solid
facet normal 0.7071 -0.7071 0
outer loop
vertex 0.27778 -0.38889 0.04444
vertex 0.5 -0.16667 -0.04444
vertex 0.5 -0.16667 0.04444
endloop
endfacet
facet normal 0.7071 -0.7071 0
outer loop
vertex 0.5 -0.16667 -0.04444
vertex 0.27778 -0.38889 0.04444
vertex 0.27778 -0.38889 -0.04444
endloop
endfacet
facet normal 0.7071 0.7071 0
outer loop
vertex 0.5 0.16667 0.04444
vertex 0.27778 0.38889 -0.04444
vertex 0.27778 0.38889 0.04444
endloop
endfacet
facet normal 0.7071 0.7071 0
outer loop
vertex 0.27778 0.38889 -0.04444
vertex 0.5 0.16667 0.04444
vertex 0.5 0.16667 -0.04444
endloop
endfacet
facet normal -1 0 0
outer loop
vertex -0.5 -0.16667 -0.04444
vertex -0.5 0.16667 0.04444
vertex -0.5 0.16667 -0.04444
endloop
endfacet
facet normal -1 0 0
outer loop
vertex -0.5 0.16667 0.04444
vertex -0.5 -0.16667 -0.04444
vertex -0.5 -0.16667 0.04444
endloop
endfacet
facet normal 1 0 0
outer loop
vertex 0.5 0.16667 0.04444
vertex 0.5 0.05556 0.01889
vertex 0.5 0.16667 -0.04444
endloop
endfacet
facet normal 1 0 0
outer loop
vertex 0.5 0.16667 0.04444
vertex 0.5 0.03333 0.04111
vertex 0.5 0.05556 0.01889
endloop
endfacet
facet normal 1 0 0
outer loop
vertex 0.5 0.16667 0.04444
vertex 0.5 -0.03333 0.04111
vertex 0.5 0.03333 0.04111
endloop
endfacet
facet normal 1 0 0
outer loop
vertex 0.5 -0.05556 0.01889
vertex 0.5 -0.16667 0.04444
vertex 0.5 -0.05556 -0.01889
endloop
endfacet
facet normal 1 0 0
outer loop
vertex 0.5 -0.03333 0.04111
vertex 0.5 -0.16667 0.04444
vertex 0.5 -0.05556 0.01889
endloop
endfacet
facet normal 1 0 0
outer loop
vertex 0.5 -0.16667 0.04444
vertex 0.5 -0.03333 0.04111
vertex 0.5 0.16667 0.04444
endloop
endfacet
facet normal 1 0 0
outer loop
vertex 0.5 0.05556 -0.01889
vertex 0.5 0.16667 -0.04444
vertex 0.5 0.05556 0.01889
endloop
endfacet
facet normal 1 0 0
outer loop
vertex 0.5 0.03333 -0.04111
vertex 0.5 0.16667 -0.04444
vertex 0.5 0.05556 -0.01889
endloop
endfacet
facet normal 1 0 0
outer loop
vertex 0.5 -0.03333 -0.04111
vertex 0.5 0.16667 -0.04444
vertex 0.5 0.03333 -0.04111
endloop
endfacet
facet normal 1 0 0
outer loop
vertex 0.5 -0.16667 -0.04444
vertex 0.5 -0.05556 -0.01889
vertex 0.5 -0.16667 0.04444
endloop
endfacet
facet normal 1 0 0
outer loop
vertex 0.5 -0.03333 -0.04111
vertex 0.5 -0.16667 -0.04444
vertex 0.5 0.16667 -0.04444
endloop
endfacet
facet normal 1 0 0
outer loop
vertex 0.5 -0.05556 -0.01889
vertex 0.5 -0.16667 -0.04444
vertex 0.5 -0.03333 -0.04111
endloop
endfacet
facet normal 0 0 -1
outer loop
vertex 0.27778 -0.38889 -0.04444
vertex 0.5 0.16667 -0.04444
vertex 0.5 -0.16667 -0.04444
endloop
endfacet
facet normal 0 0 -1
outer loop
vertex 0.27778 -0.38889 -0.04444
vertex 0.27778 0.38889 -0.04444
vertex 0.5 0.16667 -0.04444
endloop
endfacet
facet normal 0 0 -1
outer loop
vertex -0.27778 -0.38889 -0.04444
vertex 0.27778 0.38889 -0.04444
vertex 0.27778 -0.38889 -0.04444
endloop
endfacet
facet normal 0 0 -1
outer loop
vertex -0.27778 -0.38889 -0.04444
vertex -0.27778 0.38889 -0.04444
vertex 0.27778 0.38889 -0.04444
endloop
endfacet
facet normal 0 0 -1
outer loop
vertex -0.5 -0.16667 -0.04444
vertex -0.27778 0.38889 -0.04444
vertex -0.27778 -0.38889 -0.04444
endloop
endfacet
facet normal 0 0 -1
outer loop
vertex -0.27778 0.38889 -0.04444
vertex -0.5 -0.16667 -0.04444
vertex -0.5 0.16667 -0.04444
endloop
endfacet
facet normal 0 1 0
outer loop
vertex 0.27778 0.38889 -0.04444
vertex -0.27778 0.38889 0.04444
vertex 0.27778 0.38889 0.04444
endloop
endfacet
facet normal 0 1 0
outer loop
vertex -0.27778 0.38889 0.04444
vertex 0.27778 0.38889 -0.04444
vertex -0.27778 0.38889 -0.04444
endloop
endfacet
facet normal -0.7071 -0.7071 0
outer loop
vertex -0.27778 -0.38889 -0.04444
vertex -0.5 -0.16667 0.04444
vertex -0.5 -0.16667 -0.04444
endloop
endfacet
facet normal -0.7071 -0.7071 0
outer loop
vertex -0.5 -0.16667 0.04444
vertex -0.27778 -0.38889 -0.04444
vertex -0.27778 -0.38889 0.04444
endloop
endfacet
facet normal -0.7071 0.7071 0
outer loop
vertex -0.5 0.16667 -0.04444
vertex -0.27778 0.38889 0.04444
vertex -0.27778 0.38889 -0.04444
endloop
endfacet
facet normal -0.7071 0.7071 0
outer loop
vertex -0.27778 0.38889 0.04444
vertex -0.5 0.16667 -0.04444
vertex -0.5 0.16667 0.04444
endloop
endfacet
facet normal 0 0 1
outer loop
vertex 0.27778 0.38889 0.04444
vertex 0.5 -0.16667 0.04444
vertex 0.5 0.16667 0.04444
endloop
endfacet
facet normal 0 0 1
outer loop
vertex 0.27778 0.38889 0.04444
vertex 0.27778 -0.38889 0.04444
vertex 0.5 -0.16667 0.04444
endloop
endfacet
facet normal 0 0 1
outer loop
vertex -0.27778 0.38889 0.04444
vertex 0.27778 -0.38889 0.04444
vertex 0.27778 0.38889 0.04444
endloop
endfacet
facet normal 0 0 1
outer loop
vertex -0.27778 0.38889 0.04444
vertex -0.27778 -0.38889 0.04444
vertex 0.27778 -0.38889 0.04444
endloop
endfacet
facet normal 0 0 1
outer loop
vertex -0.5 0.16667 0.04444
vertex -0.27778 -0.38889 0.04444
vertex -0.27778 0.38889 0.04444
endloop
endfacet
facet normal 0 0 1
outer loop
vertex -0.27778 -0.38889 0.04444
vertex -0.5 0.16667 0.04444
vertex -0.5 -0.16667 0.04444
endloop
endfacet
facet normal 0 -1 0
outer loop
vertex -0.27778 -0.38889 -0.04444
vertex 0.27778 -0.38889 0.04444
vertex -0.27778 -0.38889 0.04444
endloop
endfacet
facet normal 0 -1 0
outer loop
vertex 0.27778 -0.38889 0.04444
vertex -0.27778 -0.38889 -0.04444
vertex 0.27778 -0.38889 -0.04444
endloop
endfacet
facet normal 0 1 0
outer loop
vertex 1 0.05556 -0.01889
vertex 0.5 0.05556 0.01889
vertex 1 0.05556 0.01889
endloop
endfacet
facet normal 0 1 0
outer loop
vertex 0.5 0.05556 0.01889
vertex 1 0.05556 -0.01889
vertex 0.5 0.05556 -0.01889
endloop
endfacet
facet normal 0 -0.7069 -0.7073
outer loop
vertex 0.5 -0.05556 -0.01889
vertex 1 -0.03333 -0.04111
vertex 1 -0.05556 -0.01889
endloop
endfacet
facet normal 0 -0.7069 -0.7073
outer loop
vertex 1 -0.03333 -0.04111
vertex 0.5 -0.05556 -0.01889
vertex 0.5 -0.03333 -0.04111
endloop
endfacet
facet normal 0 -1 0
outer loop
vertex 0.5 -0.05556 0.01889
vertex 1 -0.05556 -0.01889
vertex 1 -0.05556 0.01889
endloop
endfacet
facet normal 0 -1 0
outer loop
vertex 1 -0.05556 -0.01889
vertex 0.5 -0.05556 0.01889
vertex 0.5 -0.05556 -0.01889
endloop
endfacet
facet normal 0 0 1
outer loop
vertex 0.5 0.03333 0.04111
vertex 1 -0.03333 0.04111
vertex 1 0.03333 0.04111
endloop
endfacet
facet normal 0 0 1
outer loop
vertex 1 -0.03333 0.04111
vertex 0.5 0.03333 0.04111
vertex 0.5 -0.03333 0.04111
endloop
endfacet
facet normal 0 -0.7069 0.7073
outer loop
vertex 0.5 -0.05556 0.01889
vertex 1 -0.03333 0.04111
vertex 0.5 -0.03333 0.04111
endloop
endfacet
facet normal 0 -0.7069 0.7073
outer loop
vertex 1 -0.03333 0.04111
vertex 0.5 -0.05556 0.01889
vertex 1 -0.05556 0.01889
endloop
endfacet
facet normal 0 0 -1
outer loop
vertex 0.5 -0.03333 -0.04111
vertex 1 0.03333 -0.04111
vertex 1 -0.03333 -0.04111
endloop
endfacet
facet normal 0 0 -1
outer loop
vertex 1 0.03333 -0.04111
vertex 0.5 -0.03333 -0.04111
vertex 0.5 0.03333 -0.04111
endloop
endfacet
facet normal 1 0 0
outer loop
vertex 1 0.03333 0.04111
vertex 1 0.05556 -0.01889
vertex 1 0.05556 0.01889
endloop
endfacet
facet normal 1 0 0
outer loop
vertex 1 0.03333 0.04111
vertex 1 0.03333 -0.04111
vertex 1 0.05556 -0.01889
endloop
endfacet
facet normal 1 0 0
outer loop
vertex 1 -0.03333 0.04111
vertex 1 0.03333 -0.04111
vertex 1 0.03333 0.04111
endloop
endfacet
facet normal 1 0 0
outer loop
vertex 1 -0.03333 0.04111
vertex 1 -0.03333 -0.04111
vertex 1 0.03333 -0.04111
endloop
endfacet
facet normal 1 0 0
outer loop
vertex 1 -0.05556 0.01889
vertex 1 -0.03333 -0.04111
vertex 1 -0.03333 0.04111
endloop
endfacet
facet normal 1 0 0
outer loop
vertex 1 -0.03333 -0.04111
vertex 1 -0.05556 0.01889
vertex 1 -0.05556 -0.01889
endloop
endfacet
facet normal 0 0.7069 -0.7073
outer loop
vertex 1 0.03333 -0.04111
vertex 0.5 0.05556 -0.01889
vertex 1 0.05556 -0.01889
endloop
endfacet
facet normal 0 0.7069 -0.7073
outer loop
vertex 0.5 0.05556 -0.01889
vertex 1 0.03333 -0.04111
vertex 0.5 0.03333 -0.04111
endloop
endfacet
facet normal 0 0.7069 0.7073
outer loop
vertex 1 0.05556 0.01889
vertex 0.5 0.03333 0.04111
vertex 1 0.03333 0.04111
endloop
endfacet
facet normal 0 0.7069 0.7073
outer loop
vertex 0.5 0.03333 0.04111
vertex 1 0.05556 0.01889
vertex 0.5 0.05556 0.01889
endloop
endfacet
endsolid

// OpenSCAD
function chamfer_rect(x=1,y=1,a=0.1)
    = [ [-x+a,-y], [-x,-y+a], [-x,y-a], [-x+a,y], [x-a,y], [x,y-a], [x,-y+a], [x-a,-y] ];

scale([1/90,1/90,1/90]) { 
    union () {
        translate(v=[0,0,-4]) { linear_extrude(height=8) { polygon(chamfer_rect(45,35,20)); } };
        translate(v=[45,0,0]) { rotate(a=[0,90,0]) { linear_extrude(height=45) { polygon(chamfer_rect(3.7,5,2)); } } }
    }
}
